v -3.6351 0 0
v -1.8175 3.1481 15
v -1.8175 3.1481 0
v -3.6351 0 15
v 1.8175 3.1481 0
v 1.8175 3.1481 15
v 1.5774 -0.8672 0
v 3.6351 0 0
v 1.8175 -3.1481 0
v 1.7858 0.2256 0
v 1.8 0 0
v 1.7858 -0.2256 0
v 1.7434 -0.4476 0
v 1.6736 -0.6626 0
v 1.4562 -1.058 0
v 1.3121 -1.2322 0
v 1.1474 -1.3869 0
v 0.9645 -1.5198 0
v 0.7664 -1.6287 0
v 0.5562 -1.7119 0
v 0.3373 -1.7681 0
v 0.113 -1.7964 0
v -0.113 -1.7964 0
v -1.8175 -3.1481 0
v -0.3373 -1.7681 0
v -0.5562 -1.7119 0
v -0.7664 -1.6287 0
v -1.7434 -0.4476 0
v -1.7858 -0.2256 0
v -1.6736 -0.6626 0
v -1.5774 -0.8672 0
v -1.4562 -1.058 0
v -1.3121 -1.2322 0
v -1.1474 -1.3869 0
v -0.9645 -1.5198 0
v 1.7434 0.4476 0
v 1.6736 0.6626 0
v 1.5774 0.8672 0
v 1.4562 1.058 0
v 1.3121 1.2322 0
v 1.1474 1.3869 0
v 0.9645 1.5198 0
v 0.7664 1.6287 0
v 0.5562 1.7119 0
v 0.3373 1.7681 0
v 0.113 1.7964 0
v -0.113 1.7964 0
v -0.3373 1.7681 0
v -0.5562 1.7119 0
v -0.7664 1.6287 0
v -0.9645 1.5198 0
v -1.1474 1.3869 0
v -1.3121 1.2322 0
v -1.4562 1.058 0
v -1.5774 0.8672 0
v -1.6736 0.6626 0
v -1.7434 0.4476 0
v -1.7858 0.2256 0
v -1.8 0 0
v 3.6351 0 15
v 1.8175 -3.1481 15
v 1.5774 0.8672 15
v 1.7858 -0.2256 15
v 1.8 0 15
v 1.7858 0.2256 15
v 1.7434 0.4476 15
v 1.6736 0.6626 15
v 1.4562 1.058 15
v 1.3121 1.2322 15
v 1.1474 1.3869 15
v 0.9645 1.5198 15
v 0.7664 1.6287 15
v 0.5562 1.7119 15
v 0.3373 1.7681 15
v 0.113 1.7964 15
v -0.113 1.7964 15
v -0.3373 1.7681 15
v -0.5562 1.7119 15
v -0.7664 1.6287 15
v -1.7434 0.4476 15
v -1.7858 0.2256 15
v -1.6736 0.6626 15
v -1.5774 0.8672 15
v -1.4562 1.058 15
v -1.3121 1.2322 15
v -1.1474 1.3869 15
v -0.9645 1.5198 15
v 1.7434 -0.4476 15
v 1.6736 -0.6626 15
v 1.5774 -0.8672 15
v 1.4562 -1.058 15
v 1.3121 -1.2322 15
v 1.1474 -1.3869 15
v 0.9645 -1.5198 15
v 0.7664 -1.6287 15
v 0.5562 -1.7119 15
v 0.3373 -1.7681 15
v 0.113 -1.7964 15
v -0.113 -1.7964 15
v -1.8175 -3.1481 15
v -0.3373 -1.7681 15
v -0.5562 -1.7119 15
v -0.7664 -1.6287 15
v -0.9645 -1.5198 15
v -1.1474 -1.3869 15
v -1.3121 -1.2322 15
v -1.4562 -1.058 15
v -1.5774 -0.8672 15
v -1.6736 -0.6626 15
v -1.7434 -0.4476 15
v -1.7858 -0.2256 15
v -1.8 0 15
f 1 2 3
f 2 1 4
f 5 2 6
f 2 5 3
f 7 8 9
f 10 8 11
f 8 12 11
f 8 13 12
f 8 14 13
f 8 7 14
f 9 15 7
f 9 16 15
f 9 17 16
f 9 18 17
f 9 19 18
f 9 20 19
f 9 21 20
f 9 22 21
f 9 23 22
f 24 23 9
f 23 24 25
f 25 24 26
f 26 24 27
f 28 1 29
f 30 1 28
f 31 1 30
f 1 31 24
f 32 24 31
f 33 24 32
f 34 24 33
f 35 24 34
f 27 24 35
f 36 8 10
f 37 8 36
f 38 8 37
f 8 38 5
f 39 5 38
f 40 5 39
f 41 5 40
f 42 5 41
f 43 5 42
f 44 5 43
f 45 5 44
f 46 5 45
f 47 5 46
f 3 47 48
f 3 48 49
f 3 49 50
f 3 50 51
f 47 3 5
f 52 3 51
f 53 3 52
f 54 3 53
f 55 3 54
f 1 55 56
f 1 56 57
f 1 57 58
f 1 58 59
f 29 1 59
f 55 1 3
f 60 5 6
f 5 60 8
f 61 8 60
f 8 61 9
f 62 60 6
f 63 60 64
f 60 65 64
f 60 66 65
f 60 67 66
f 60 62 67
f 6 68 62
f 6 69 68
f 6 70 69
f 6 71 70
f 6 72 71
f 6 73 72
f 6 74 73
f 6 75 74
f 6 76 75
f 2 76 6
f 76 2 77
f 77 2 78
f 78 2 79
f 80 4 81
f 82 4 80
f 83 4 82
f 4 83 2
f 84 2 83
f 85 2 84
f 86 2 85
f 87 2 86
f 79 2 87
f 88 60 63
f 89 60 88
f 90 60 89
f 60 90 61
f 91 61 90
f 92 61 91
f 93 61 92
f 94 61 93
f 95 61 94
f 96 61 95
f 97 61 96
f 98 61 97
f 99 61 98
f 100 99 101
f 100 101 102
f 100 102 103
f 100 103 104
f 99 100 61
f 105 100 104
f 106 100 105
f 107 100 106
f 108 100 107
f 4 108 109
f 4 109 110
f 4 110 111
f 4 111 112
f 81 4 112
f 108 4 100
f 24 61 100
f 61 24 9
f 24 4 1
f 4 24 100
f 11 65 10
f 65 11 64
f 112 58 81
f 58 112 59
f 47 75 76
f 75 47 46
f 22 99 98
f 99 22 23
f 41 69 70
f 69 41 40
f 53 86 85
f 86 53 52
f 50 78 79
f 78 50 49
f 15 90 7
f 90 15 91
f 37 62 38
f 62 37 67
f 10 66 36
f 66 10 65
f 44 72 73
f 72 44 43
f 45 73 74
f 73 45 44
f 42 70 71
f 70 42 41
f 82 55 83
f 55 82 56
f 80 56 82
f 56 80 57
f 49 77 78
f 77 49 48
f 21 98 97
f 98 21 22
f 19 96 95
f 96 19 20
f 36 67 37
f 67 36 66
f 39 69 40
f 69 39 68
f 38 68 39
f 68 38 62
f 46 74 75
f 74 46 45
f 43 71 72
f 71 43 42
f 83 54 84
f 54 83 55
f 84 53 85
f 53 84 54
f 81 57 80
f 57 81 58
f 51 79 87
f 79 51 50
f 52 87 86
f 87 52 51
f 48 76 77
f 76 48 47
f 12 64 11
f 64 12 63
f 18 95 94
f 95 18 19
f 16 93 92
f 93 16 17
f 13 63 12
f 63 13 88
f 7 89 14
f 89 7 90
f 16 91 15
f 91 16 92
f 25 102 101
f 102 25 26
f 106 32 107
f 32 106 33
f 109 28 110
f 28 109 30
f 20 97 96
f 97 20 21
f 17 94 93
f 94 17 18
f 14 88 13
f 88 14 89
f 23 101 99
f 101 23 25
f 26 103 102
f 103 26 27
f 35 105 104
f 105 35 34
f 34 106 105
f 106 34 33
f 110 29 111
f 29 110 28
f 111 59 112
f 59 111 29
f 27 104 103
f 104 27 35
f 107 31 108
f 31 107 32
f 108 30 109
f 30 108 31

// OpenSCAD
$fn = 50;


difference() {
	union() {
		translate(v = [0, 0, 0]) {
			rotate(a = [0, 0, 0]) {
				translate(v = [0, 0, 0]) {
					rotate(a = [0, 0, 0]) {
						linear_extrude(height = 15) {
							polygon(points = [[3.6351000000, 0.0000000000], [1.8175500000, 3.1480889453], [-1.8175500000, 3.1480889453], [-3.6351000000, 0.0000000000], [-1.8175500000, -3.1480889453], [1.8175500000, -3.1480889453]]);
						}
					}
				}
			}
		}
	}
	union() {
		translate(v = [0, 0, 0]) {
			rotate(a = [0, 0, 0]) {
				cylinder(h = 15, r = 1.8000000000);
			}
		}
	}
}
